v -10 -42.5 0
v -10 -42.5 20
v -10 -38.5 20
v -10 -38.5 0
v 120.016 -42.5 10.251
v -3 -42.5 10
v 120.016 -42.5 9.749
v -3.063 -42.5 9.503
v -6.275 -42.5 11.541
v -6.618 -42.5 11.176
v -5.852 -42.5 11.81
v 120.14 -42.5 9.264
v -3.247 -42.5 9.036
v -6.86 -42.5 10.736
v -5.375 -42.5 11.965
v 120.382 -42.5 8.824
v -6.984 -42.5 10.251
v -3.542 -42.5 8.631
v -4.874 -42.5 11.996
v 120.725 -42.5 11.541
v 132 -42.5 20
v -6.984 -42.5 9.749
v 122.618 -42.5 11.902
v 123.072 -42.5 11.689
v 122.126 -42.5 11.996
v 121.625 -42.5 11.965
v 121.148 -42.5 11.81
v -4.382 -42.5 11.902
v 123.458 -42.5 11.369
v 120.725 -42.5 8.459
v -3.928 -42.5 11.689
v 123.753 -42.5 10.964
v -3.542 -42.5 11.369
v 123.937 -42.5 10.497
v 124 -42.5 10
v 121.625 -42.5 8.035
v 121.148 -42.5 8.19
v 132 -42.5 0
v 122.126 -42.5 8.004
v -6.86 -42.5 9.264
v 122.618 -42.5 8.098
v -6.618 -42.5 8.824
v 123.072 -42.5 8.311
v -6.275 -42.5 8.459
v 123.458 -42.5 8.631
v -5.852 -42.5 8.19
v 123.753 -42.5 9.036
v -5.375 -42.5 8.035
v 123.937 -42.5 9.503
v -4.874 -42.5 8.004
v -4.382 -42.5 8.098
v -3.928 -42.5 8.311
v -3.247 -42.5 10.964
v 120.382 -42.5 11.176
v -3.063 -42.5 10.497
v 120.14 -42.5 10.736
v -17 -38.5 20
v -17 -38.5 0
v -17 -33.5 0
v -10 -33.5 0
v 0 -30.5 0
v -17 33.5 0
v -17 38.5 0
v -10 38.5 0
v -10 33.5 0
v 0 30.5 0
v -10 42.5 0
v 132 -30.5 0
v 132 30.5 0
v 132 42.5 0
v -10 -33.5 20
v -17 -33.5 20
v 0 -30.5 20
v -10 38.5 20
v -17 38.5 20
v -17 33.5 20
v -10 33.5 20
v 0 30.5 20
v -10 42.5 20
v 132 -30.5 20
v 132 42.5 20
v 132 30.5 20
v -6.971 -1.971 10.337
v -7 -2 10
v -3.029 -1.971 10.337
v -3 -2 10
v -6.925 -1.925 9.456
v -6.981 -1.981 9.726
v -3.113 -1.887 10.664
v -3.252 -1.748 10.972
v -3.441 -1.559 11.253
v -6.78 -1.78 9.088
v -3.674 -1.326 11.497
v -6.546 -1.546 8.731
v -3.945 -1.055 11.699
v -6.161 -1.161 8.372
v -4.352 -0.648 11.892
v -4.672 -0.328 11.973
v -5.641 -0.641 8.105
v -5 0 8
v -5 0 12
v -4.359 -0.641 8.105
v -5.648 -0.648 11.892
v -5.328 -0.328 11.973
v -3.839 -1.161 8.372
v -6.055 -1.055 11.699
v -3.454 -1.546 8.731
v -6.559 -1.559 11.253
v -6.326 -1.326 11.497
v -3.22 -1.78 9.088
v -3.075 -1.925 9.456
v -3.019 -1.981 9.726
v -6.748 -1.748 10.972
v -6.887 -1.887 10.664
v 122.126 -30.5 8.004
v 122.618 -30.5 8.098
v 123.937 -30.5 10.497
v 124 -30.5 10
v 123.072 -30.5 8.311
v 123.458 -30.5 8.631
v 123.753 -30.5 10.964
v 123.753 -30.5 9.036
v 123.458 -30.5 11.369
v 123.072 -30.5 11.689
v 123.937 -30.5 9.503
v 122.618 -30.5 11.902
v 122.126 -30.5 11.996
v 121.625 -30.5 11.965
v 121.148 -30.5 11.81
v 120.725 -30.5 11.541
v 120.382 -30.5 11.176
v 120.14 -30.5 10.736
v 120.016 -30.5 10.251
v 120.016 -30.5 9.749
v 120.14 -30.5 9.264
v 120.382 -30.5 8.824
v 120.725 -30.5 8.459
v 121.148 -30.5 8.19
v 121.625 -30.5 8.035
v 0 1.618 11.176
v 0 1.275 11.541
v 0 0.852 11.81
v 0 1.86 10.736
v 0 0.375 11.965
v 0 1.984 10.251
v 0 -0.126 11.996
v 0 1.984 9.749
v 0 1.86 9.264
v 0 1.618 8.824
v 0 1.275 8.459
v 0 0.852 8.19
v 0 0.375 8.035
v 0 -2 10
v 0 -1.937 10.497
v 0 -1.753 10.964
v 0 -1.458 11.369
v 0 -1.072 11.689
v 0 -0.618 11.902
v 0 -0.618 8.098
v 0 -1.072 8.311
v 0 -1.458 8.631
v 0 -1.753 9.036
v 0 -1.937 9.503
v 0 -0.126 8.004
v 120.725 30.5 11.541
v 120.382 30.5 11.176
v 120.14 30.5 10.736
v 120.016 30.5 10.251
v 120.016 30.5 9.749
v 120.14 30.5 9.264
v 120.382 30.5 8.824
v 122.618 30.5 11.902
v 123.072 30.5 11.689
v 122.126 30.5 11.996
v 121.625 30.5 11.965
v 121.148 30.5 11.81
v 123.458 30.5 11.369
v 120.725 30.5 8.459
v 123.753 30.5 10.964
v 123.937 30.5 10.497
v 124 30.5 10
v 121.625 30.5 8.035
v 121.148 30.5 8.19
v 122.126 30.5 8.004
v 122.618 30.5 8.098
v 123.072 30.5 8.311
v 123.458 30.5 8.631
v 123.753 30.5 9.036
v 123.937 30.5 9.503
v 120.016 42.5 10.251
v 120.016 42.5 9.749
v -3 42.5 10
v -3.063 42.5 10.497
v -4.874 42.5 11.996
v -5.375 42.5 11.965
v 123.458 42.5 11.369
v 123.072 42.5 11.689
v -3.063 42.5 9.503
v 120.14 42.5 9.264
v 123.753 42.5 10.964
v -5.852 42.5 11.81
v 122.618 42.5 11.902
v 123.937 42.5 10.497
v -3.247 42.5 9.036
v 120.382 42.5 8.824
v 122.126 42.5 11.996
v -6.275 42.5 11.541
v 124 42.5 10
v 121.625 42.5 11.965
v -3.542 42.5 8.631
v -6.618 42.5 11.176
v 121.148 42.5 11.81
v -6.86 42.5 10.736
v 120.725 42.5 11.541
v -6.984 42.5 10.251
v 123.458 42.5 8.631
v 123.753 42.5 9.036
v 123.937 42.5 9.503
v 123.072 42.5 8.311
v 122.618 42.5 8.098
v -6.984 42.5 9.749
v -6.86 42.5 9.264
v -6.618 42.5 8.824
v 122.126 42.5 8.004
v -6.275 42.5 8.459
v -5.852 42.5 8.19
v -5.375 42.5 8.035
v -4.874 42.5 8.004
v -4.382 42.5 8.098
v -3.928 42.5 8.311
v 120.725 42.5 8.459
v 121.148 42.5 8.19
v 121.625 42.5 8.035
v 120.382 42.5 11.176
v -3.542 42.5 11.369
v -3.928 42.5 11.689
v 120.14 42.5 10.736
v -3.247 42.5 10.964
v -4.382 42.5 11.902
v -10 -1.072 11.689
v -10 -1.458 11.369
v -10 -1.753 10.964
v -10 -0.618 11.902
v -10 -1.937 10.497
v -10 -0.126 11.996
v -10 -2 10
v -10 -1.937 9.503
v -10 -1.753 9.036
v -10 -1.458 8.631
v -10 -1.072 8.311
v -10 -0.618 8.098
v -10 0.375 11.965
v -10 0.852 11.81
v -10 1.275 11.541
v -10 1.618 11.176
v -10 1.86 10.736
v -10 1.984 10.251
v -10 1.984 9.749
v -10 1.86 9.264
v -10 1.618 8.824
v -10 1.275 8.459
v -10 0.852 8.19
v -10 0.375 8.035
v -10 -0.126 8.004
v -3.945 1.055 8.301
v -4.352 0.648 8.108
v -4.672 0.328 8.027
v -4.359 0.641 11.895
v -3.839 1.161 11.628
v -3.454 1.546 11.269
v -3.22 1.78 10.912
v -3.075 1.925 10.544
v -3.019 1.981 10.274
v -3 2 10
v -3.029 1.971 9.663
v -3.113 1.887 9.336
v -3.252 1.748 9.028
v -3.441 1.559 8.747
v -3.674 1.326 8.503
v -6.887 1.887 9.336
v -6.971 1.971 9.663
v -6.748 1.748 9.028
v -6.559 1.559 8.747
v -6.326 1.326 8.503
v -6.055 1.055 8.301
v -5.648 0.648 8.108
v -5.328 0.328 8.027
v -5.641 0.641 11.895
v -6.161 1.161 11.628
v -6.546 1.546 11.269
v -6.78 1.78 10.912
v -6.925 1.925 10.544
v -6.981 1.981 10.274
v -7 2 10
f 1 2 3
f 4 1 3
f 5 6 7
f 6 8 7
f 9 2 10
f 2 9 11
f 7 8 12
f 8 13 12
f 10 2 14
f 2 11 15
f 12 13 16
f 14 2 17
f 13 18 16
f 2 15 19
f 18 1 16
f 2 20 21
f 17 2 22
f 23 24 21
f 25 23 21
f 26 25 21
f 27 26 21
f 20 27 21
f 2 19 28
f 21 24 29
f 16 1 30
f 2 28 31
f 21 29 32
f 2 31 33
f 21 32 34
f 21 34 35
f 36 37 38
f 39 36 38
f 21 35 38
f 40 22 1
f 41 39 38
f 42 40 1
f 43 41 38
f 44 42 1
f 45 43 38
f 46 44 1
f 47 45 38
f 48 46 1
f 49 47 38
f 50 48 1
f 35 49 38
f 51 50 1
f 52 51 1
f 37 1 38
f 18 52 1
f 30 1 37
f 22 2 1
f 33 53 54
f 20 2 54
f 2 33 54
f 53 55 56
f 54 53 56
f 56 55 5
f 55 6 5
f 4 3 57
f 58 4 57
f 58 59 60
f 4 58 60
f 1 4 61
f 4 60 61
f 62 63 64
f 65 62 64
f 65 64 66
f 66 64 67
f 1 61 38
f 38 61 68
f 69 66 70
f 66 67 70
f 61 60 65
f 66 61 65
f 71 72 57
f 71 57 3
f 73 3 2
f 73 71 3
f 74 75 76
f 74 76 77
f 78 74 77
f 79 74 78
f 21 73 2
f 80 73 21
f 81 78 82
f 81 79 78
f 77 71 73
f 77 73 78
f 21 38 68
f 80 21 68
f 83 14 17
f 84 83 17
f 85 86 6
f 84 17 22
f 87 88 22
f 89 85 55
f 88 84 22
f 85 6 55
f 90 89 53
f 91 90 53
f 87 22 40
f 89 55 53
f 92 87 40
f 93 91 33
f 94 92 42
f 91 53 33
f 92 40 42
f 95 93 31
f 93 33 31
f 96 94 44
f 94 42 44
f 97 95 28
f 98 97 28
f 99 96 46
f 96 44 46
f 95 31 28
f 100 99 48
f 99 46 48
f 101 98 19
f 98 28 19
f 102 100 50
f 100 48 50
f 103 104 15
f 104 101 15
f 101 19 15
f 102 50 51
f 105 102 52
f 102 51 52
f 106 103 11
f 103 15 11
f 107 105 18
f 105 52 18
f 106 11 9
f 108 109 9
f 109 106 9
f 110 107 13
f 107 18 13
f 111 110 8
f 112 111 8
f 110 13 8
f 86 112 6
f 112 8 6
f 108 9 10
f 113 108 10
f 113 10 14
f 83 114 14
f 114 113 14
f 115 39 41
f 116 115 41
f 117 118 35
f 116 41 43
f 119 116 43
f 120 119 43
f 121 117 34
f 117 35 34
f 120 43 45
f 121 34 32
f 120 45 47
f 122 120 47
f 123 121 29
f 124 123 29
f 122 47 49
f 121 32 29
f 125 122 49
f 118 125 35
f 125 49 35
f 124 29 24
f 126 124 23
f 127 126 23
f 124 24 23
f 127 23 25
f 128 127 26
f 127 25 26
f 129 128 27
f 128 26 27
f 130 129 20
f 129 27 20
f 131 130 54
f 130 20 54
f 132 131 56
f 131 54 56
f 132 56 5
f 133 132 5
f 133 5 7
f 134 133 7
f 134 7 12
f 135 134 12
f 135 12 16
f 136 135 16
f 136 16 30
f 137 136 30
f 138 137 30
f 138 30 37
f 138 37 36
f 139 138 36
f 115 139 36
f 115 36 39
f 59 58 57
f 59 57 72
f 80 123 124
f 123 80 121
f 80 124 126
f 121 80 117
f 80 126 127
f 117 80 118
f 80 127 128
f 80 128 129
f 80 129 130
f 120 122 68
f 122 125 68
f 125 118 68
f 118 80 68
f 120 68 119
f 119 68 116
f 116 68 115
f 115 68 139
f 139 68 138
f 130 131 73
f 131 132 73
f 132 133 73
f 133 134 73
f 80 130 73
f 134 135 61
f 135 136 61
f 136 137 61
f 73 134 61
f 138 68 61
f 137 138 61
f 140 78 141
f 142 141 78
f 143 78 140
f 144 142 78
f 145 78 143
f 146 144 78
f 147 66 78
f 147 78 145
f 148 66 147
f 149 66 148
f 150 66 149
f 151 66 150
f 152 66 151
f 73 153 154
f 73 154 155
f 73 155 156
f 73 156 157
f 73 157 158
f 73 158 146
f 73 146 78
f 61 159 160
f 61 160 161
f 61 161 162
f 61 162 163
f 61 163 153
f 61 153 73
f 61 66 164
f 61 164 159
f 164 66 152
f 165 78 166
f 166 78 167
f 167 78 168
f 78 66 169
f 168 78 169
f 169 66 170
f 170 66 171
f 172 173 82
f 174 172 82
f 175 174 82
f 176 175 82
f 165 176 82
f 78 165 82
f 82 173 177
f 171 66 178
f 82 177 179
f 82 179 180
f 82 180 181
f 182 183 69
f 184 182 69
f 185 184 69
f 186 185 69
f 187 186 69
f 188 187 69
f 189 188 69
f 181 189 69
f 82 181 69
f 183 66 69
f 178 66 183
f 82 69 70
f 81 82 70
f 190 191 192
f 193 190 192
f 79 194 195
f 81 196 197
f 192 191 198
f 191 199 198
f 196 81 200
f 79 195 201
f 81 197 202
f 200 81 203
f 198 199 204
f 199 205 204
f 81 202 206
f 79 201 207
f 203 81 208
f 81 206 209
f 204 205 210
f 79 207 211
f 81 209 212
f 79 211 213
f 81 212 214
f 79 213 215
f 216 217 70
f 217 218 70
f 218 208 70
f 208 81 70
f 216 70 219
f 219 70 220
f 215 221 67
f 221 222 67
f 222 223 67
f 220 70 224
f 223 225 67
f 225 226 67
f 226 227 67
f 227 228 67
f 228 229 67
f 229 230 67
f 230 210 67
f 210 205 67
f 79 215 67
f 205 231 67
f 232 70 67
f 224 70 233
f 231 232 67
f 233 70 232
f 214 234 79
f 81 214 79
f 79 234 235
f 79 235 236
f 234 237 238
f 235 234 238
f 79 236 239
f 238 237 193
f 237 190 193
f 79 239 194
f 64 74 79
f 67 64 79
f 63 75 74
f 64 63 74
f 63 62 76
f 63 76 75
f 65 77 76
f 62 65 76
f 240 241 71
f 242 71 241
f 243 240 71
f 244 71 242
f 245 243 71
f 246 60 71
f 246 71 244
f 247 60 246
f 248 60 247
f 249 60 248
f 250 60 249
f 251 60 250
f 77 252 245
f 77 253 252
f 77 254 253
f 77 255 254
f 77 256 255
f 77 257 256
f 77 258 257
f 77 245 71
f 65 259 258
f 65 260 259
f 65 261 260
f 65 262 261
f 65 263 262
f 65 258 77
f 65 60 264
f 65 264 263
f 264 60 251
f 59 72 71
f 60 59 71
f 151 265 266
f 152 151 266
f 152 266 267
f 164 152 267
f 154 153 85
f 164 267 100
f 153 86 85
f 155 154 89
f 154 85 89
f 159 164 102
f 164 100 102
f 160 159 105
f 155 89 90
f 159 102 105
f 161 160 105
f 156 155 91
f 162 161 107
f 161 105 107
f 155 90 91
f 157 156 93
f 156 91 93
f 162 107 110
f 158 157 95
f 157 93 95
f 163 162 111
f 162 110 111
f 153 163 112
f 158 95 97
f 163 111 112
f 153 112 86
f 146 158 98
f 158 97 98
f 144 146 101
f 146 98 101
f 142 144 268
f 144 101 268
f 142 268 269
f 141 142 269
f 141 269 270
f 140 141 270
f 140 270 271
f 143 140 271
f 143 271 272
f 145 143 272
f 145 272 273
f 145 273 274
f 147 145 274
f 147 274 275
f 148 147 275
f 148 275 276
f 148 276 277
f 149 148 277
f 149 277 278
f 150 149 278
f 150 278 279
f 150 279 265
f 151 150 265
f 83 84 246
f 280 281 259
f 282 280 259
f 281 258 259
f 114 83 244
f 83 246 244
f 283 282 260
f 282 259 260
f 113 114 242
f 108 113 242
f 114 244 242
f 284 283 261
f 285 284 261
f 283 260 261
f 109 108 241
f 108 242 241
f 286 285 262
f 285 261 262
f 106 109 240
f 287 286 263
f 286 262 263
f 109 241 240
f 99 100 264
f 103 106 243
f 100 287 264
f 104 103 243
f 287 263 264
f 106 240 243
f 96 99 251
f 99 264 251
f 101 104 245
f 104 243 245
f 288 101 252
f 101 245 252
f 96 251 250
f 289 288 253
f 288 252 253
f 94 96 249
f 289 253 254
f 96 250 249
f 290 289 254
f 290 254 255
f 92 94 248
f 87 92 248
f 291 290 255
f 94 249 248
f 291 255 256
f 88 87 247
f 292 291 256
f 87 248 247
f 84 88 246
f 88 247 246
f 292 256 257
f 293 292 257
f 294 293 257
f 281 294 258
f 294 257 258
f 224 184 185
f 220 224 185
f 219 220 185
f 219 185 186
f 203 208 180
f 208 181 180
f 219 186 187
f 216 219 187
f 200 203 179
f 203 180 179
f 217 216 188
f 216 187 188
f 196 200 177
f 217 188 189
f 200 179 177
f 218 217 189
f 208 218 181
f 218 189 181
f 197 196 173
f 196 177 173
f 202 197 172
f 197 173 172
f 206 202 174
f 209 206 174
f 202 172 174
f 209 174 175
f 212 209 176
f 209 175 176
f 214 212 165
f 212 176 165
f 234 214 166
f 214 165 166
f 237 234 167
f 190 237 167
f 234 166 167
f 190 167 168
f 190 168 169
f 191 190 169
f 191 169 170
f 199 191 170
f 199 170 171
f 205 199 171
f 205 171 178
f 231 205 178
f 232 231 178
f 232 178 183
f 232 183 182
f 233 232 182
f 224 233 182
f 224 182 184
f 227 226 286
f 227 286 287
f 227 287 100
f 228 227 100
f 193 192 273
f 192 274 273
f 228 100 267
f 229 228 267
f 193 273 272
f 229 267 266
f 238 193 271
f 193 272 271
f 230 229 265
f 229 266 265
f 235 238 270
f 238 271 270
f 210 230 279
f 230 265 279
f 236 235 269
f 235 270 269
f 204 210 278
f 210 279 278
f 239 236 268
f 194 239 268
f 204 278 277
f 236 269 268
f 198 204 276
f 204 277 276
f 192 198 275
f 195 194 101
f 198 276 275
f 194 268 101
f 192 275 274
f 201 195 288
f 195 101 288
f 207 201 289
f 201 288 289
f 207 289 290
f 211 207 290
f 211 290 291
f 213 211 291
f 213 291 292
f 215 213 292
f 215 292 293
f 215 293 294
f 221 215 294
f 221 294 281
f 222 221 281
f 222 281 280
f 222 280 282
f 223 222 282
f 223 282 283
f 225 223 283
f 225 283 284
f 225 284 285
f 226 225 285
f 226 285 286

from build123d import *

# Parameters (mm, degrees)
PAD_DEPTH       = 20
SKETCH004_R     = 2
POCKET002_DEPTH = 142.001
SKETCH005_R     = 2
POCKET003_DEPTH = 85.001


with BuildPart() as part:
    # Sketch → Pad (new body)
    with BuildSketch(Plane.XY):
        Polygon((-10, -42.5), (132, -42.5), (132, -30.5), (0, -30.5), (0, 30.5), (132, 30.5), (132, 42.5), (-10, 42.5), (-10, 38.5), (-17, 38.5), (-17, 33.5), (-10, 33.5), (-10, -33.5), (-17, -33.5), (-17, -38.5), (-10, -38.5), align=None)
    extrude(amount=PAD_DEPTH)

    # Sketch004 → Pocket002 (cut, through all)
    with BuildSketch(Plane(origin=(-10, 0, 0), x_dir=(0, -1, 0), z_dir=(-1, 0, 0))):
        with Locations((0, 10)):
            Circle(SKETCH004_R)
    extrude(amount=-POCKET002_DEPTH, mode=Mode.SUBTRACT)

    # Sketch005 → Pocket003 (cut, through all)
    with BuildSketch(Plane.XZ.offset(42.5)):
        with Locations((-5, 10)):
            Circle(SKETCH005_R)
        with Locations((122, 10)):
            Circle(SKETCH005_R)
    extrude(amount=-POCKET003_DEPTH, mode=Mode.SUBTRACT)


solid = part.part
